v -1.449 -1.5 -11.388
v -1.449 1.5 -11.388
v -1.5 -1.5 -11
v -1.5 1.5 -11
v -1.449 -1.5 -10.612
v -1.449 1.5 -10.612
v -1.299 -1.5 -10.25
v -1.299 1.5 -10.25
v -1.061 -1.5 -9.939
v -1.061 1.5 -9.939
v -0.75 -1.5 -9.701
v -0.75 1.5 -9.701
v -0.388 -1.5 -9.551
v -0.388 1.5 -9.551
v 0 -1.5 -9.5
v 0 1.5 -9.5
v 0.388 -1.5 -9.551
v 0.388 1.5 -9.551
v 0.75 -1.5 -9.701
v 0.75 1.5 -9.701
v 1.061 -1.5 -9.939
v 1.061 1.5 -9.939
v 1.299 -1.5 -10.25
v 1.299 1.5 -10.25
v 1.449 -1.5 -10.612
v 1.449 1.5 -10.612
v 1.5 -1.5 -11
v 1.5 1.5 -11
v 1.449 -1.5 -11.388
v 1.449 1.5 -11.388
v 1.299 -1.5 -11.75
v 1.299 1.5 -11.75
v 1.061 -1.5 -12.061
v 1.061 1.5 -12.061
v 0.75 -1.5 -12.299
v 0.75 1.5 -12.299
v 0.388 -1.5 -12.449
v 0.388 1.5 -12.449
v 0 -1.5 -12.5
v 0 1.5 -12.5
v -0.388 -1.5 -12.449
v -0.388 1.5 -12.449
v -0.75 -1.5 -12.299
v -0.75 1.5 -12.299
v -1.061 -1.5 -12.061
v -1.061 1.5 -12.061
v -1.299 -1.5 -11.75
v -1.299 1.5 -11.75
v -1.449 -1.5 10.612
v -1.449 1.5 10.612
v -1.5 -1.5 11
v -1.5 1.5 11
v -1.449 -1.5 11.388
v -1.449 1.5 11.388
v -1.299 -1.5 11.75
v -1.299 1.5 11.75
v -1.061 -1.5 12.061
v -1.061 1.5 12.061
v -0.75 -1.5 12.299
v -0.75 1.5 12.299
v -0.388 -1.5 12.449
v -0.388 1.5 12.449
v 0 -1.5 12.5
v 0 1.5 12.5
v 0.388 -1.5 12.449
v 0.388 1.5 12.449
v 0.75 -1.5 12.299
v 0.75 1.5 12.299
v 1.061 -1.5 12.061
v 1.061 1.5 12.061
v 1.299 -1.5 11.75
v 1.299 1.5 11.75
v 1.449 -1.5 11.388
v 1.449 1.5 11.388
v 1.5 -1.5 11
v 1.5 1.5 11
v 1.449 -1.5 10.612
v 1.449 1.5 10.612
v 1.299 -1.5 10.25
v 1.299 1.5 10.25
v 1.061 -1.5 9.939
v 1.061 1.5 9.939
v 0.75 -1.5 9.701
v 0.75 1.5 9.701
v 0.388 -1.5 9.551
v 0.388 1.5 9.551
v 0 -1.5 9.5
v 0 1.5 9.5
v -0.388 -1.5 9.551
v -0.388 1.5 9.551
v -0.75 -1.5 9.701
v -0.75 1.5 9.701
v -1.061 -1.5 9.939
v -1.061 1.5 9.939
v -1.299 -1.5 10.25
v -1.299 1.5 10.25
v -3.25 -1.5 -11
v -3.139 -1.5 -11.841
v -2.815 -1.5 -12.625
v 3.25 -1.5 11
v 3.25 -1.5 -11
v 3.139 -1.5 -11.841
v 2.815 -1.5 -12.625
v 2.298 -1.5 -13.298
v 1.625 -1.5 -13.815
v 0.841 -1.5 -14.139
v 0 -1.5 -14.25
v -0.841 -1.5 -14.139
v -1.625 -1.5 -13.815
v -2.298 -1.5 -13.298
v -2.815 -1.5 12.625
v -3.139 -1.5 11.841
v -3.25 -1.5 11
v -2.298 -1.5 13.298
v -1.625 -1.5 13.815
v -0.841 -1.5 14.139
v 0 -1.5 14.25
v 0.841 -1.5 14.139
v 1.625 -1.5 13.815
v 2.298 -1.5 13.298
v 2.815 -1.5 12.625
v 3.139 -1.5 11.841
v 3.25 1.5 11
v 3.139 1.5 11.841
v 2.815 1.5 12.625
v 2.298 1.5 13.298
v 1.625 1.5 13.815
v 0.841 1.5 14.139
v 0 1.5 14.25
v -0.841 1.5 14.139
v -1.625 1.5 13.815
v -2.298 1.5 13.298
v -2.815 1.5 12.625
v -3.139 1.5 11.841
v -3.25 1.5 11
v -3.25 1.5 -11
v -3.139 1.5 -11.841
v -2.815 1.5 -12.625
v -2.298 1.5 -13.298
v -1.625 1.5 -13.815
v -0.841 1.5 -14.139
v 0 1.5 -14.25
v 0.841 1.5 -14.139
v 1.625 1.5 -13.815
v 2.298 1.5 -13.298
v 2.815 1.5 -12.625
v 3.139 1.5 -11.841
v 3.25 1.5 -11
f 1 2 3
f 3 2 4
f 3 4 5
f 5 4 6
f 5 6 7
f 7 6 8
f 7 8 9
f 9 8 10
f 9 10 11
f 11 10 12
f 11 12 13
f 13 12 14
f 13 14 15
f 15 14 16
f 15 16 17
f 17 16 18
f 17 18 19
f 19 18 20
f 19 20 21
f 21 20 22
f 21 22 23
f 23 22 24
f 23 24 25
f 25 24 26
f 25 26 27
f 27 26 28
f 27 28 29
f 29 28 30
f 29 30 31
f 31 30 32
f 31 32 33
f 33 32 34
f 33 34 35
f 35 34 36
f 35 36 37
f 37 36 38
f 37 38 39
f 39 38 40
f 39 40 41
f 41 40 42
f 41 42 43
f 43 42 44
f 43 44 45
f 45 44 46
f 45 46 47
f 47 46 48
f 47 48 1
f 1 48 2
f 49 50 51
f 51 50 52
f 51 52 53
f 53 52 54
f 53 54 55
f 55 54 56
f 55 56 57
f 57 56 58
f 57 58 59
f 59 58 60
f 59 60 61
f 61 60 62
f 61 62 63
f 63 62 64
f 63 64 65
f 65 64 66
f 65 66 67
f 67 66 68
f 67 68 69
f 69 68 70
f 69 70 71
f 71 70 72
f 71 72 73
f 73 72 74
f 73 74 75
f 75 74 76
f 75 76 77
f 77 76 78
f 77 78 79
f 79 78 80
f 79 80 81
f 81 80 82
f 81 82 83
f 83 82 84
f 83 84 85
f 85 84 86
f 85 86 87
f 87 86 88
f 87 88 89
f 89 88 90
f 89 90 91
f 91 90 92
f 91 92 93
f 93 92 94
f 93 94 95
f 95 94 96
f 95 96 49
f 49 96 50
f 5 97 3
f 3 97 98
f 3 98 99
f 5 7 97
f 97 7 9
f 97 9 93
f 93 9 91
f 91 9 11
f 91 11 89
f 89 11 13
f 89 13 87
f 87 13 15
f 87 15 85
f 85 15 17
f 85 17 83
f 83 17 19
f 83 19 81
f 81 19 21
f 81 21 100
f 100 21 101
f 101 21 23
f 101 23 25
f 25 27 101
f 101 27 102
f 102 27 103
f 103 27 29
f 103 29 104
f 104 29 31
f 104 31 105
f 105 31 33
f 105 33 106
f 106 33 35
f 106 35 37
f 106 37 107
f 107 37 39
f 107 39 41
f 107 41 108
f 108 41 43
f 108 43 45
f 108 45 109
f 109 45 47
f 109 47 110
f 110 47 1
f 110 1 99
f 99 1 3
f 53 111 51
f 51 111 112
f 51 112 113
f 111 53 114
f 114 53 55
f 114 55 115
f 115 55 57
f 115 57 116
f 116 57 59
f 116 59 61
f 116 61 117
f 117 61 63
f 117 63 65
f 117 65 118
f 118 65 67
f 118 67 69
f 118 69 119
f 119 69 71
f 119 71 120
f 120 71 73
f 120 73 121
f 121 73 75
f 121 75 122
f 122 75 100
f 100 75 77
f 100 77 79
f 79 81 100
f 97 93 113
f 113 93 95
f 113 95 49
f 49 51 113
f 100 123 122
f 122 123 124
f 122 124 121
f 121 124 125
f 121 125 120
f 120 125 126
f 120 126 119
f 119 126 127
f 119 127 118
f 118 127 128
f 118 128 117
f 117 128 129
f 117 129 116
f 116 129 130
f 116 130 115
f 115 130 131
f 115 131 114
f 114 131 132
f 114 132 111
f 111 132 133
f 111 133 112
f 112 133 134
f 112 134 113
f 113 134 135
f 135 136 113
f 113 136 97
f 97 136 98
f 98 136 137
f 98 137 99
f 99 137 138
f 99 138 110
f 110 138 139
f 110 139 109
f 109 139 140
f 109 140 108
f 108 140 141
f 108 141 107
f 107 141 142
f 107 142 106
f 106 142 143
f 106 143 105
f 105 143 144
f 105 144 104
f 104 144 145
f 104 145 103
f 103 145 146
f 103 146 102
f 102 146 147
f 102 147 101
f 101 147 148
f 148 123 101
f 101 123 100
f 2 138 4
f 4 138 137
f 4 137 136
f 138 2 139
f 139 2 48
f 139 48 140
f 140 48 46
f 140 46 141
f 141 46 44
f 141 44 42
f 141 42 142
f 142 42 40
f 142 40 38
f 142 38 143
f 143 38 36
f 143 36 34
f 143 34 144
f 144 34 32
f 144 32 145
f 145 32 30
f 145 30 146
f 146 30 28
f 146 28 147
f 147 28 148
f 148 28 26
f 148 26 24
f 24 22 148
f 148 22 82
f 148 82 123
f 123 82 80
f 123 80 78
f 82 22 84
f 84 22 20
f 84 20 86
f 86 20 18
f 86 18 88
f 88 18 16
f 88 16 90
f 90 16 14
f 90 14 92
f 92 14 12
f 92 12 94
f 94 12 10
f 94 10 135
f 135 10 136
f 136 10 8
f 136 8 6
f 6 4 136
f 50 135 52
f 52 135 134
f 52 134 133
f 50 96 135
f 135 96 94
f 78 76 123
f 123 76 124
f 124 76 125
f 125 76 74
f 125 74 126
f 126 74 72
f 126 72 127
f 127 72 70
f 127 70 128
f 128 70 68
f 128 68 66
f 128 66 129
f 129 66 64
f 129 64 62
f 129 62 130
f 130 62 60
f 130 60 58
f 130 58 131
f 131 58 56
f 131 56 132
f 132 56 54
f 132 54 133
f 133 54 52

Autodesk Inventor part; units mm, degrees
ref_plane "YZ Plane" through (0, 0, 0) normal (1, 0, 0) x (0, 1, 0)
ref_plane "XZ Plane" through (0, 0, 0) normal (0, 1, 0) x (-1, 0, 0)
ref_plane "XY Plane" through (0, 0, 0) normal (0, 0, 1) x (1, 0, 0)
sketch "草圖1" plane through (0, 0, 0) normal (0, 1, 0) x (-1, 0, 0)
  line L0 (0, 0) -> (0, -11)
  line L1 (0, 0) -> (0, 11)
  line L2 (0, 11) -> (0, -11) construction
  line L3 (-3.25, 11) -> (-3.25, -11)
  line L4 (3.25, -11) -> (3.25, 11)
  arc A0 (3.25, 11) -> (-3.25, 11) centre (0, 11) ccw
  arc A1 (-3.25, -11) -> (3.25, -11) centre (0, -11) ccw
  circle A2 centre (0, 11) radius 1.5
  circle A3 centre (0, -11) radius 1.5
  dimension "d7" = 11
  dimension "d8" = 11
  dimension "d9" = 3.25
  dimension "d10" = 3
  dimension "d11" = 3
extrude "擠出1" add sketch "草圖1" along normal mid plane 3
properties part number "小零件2"
